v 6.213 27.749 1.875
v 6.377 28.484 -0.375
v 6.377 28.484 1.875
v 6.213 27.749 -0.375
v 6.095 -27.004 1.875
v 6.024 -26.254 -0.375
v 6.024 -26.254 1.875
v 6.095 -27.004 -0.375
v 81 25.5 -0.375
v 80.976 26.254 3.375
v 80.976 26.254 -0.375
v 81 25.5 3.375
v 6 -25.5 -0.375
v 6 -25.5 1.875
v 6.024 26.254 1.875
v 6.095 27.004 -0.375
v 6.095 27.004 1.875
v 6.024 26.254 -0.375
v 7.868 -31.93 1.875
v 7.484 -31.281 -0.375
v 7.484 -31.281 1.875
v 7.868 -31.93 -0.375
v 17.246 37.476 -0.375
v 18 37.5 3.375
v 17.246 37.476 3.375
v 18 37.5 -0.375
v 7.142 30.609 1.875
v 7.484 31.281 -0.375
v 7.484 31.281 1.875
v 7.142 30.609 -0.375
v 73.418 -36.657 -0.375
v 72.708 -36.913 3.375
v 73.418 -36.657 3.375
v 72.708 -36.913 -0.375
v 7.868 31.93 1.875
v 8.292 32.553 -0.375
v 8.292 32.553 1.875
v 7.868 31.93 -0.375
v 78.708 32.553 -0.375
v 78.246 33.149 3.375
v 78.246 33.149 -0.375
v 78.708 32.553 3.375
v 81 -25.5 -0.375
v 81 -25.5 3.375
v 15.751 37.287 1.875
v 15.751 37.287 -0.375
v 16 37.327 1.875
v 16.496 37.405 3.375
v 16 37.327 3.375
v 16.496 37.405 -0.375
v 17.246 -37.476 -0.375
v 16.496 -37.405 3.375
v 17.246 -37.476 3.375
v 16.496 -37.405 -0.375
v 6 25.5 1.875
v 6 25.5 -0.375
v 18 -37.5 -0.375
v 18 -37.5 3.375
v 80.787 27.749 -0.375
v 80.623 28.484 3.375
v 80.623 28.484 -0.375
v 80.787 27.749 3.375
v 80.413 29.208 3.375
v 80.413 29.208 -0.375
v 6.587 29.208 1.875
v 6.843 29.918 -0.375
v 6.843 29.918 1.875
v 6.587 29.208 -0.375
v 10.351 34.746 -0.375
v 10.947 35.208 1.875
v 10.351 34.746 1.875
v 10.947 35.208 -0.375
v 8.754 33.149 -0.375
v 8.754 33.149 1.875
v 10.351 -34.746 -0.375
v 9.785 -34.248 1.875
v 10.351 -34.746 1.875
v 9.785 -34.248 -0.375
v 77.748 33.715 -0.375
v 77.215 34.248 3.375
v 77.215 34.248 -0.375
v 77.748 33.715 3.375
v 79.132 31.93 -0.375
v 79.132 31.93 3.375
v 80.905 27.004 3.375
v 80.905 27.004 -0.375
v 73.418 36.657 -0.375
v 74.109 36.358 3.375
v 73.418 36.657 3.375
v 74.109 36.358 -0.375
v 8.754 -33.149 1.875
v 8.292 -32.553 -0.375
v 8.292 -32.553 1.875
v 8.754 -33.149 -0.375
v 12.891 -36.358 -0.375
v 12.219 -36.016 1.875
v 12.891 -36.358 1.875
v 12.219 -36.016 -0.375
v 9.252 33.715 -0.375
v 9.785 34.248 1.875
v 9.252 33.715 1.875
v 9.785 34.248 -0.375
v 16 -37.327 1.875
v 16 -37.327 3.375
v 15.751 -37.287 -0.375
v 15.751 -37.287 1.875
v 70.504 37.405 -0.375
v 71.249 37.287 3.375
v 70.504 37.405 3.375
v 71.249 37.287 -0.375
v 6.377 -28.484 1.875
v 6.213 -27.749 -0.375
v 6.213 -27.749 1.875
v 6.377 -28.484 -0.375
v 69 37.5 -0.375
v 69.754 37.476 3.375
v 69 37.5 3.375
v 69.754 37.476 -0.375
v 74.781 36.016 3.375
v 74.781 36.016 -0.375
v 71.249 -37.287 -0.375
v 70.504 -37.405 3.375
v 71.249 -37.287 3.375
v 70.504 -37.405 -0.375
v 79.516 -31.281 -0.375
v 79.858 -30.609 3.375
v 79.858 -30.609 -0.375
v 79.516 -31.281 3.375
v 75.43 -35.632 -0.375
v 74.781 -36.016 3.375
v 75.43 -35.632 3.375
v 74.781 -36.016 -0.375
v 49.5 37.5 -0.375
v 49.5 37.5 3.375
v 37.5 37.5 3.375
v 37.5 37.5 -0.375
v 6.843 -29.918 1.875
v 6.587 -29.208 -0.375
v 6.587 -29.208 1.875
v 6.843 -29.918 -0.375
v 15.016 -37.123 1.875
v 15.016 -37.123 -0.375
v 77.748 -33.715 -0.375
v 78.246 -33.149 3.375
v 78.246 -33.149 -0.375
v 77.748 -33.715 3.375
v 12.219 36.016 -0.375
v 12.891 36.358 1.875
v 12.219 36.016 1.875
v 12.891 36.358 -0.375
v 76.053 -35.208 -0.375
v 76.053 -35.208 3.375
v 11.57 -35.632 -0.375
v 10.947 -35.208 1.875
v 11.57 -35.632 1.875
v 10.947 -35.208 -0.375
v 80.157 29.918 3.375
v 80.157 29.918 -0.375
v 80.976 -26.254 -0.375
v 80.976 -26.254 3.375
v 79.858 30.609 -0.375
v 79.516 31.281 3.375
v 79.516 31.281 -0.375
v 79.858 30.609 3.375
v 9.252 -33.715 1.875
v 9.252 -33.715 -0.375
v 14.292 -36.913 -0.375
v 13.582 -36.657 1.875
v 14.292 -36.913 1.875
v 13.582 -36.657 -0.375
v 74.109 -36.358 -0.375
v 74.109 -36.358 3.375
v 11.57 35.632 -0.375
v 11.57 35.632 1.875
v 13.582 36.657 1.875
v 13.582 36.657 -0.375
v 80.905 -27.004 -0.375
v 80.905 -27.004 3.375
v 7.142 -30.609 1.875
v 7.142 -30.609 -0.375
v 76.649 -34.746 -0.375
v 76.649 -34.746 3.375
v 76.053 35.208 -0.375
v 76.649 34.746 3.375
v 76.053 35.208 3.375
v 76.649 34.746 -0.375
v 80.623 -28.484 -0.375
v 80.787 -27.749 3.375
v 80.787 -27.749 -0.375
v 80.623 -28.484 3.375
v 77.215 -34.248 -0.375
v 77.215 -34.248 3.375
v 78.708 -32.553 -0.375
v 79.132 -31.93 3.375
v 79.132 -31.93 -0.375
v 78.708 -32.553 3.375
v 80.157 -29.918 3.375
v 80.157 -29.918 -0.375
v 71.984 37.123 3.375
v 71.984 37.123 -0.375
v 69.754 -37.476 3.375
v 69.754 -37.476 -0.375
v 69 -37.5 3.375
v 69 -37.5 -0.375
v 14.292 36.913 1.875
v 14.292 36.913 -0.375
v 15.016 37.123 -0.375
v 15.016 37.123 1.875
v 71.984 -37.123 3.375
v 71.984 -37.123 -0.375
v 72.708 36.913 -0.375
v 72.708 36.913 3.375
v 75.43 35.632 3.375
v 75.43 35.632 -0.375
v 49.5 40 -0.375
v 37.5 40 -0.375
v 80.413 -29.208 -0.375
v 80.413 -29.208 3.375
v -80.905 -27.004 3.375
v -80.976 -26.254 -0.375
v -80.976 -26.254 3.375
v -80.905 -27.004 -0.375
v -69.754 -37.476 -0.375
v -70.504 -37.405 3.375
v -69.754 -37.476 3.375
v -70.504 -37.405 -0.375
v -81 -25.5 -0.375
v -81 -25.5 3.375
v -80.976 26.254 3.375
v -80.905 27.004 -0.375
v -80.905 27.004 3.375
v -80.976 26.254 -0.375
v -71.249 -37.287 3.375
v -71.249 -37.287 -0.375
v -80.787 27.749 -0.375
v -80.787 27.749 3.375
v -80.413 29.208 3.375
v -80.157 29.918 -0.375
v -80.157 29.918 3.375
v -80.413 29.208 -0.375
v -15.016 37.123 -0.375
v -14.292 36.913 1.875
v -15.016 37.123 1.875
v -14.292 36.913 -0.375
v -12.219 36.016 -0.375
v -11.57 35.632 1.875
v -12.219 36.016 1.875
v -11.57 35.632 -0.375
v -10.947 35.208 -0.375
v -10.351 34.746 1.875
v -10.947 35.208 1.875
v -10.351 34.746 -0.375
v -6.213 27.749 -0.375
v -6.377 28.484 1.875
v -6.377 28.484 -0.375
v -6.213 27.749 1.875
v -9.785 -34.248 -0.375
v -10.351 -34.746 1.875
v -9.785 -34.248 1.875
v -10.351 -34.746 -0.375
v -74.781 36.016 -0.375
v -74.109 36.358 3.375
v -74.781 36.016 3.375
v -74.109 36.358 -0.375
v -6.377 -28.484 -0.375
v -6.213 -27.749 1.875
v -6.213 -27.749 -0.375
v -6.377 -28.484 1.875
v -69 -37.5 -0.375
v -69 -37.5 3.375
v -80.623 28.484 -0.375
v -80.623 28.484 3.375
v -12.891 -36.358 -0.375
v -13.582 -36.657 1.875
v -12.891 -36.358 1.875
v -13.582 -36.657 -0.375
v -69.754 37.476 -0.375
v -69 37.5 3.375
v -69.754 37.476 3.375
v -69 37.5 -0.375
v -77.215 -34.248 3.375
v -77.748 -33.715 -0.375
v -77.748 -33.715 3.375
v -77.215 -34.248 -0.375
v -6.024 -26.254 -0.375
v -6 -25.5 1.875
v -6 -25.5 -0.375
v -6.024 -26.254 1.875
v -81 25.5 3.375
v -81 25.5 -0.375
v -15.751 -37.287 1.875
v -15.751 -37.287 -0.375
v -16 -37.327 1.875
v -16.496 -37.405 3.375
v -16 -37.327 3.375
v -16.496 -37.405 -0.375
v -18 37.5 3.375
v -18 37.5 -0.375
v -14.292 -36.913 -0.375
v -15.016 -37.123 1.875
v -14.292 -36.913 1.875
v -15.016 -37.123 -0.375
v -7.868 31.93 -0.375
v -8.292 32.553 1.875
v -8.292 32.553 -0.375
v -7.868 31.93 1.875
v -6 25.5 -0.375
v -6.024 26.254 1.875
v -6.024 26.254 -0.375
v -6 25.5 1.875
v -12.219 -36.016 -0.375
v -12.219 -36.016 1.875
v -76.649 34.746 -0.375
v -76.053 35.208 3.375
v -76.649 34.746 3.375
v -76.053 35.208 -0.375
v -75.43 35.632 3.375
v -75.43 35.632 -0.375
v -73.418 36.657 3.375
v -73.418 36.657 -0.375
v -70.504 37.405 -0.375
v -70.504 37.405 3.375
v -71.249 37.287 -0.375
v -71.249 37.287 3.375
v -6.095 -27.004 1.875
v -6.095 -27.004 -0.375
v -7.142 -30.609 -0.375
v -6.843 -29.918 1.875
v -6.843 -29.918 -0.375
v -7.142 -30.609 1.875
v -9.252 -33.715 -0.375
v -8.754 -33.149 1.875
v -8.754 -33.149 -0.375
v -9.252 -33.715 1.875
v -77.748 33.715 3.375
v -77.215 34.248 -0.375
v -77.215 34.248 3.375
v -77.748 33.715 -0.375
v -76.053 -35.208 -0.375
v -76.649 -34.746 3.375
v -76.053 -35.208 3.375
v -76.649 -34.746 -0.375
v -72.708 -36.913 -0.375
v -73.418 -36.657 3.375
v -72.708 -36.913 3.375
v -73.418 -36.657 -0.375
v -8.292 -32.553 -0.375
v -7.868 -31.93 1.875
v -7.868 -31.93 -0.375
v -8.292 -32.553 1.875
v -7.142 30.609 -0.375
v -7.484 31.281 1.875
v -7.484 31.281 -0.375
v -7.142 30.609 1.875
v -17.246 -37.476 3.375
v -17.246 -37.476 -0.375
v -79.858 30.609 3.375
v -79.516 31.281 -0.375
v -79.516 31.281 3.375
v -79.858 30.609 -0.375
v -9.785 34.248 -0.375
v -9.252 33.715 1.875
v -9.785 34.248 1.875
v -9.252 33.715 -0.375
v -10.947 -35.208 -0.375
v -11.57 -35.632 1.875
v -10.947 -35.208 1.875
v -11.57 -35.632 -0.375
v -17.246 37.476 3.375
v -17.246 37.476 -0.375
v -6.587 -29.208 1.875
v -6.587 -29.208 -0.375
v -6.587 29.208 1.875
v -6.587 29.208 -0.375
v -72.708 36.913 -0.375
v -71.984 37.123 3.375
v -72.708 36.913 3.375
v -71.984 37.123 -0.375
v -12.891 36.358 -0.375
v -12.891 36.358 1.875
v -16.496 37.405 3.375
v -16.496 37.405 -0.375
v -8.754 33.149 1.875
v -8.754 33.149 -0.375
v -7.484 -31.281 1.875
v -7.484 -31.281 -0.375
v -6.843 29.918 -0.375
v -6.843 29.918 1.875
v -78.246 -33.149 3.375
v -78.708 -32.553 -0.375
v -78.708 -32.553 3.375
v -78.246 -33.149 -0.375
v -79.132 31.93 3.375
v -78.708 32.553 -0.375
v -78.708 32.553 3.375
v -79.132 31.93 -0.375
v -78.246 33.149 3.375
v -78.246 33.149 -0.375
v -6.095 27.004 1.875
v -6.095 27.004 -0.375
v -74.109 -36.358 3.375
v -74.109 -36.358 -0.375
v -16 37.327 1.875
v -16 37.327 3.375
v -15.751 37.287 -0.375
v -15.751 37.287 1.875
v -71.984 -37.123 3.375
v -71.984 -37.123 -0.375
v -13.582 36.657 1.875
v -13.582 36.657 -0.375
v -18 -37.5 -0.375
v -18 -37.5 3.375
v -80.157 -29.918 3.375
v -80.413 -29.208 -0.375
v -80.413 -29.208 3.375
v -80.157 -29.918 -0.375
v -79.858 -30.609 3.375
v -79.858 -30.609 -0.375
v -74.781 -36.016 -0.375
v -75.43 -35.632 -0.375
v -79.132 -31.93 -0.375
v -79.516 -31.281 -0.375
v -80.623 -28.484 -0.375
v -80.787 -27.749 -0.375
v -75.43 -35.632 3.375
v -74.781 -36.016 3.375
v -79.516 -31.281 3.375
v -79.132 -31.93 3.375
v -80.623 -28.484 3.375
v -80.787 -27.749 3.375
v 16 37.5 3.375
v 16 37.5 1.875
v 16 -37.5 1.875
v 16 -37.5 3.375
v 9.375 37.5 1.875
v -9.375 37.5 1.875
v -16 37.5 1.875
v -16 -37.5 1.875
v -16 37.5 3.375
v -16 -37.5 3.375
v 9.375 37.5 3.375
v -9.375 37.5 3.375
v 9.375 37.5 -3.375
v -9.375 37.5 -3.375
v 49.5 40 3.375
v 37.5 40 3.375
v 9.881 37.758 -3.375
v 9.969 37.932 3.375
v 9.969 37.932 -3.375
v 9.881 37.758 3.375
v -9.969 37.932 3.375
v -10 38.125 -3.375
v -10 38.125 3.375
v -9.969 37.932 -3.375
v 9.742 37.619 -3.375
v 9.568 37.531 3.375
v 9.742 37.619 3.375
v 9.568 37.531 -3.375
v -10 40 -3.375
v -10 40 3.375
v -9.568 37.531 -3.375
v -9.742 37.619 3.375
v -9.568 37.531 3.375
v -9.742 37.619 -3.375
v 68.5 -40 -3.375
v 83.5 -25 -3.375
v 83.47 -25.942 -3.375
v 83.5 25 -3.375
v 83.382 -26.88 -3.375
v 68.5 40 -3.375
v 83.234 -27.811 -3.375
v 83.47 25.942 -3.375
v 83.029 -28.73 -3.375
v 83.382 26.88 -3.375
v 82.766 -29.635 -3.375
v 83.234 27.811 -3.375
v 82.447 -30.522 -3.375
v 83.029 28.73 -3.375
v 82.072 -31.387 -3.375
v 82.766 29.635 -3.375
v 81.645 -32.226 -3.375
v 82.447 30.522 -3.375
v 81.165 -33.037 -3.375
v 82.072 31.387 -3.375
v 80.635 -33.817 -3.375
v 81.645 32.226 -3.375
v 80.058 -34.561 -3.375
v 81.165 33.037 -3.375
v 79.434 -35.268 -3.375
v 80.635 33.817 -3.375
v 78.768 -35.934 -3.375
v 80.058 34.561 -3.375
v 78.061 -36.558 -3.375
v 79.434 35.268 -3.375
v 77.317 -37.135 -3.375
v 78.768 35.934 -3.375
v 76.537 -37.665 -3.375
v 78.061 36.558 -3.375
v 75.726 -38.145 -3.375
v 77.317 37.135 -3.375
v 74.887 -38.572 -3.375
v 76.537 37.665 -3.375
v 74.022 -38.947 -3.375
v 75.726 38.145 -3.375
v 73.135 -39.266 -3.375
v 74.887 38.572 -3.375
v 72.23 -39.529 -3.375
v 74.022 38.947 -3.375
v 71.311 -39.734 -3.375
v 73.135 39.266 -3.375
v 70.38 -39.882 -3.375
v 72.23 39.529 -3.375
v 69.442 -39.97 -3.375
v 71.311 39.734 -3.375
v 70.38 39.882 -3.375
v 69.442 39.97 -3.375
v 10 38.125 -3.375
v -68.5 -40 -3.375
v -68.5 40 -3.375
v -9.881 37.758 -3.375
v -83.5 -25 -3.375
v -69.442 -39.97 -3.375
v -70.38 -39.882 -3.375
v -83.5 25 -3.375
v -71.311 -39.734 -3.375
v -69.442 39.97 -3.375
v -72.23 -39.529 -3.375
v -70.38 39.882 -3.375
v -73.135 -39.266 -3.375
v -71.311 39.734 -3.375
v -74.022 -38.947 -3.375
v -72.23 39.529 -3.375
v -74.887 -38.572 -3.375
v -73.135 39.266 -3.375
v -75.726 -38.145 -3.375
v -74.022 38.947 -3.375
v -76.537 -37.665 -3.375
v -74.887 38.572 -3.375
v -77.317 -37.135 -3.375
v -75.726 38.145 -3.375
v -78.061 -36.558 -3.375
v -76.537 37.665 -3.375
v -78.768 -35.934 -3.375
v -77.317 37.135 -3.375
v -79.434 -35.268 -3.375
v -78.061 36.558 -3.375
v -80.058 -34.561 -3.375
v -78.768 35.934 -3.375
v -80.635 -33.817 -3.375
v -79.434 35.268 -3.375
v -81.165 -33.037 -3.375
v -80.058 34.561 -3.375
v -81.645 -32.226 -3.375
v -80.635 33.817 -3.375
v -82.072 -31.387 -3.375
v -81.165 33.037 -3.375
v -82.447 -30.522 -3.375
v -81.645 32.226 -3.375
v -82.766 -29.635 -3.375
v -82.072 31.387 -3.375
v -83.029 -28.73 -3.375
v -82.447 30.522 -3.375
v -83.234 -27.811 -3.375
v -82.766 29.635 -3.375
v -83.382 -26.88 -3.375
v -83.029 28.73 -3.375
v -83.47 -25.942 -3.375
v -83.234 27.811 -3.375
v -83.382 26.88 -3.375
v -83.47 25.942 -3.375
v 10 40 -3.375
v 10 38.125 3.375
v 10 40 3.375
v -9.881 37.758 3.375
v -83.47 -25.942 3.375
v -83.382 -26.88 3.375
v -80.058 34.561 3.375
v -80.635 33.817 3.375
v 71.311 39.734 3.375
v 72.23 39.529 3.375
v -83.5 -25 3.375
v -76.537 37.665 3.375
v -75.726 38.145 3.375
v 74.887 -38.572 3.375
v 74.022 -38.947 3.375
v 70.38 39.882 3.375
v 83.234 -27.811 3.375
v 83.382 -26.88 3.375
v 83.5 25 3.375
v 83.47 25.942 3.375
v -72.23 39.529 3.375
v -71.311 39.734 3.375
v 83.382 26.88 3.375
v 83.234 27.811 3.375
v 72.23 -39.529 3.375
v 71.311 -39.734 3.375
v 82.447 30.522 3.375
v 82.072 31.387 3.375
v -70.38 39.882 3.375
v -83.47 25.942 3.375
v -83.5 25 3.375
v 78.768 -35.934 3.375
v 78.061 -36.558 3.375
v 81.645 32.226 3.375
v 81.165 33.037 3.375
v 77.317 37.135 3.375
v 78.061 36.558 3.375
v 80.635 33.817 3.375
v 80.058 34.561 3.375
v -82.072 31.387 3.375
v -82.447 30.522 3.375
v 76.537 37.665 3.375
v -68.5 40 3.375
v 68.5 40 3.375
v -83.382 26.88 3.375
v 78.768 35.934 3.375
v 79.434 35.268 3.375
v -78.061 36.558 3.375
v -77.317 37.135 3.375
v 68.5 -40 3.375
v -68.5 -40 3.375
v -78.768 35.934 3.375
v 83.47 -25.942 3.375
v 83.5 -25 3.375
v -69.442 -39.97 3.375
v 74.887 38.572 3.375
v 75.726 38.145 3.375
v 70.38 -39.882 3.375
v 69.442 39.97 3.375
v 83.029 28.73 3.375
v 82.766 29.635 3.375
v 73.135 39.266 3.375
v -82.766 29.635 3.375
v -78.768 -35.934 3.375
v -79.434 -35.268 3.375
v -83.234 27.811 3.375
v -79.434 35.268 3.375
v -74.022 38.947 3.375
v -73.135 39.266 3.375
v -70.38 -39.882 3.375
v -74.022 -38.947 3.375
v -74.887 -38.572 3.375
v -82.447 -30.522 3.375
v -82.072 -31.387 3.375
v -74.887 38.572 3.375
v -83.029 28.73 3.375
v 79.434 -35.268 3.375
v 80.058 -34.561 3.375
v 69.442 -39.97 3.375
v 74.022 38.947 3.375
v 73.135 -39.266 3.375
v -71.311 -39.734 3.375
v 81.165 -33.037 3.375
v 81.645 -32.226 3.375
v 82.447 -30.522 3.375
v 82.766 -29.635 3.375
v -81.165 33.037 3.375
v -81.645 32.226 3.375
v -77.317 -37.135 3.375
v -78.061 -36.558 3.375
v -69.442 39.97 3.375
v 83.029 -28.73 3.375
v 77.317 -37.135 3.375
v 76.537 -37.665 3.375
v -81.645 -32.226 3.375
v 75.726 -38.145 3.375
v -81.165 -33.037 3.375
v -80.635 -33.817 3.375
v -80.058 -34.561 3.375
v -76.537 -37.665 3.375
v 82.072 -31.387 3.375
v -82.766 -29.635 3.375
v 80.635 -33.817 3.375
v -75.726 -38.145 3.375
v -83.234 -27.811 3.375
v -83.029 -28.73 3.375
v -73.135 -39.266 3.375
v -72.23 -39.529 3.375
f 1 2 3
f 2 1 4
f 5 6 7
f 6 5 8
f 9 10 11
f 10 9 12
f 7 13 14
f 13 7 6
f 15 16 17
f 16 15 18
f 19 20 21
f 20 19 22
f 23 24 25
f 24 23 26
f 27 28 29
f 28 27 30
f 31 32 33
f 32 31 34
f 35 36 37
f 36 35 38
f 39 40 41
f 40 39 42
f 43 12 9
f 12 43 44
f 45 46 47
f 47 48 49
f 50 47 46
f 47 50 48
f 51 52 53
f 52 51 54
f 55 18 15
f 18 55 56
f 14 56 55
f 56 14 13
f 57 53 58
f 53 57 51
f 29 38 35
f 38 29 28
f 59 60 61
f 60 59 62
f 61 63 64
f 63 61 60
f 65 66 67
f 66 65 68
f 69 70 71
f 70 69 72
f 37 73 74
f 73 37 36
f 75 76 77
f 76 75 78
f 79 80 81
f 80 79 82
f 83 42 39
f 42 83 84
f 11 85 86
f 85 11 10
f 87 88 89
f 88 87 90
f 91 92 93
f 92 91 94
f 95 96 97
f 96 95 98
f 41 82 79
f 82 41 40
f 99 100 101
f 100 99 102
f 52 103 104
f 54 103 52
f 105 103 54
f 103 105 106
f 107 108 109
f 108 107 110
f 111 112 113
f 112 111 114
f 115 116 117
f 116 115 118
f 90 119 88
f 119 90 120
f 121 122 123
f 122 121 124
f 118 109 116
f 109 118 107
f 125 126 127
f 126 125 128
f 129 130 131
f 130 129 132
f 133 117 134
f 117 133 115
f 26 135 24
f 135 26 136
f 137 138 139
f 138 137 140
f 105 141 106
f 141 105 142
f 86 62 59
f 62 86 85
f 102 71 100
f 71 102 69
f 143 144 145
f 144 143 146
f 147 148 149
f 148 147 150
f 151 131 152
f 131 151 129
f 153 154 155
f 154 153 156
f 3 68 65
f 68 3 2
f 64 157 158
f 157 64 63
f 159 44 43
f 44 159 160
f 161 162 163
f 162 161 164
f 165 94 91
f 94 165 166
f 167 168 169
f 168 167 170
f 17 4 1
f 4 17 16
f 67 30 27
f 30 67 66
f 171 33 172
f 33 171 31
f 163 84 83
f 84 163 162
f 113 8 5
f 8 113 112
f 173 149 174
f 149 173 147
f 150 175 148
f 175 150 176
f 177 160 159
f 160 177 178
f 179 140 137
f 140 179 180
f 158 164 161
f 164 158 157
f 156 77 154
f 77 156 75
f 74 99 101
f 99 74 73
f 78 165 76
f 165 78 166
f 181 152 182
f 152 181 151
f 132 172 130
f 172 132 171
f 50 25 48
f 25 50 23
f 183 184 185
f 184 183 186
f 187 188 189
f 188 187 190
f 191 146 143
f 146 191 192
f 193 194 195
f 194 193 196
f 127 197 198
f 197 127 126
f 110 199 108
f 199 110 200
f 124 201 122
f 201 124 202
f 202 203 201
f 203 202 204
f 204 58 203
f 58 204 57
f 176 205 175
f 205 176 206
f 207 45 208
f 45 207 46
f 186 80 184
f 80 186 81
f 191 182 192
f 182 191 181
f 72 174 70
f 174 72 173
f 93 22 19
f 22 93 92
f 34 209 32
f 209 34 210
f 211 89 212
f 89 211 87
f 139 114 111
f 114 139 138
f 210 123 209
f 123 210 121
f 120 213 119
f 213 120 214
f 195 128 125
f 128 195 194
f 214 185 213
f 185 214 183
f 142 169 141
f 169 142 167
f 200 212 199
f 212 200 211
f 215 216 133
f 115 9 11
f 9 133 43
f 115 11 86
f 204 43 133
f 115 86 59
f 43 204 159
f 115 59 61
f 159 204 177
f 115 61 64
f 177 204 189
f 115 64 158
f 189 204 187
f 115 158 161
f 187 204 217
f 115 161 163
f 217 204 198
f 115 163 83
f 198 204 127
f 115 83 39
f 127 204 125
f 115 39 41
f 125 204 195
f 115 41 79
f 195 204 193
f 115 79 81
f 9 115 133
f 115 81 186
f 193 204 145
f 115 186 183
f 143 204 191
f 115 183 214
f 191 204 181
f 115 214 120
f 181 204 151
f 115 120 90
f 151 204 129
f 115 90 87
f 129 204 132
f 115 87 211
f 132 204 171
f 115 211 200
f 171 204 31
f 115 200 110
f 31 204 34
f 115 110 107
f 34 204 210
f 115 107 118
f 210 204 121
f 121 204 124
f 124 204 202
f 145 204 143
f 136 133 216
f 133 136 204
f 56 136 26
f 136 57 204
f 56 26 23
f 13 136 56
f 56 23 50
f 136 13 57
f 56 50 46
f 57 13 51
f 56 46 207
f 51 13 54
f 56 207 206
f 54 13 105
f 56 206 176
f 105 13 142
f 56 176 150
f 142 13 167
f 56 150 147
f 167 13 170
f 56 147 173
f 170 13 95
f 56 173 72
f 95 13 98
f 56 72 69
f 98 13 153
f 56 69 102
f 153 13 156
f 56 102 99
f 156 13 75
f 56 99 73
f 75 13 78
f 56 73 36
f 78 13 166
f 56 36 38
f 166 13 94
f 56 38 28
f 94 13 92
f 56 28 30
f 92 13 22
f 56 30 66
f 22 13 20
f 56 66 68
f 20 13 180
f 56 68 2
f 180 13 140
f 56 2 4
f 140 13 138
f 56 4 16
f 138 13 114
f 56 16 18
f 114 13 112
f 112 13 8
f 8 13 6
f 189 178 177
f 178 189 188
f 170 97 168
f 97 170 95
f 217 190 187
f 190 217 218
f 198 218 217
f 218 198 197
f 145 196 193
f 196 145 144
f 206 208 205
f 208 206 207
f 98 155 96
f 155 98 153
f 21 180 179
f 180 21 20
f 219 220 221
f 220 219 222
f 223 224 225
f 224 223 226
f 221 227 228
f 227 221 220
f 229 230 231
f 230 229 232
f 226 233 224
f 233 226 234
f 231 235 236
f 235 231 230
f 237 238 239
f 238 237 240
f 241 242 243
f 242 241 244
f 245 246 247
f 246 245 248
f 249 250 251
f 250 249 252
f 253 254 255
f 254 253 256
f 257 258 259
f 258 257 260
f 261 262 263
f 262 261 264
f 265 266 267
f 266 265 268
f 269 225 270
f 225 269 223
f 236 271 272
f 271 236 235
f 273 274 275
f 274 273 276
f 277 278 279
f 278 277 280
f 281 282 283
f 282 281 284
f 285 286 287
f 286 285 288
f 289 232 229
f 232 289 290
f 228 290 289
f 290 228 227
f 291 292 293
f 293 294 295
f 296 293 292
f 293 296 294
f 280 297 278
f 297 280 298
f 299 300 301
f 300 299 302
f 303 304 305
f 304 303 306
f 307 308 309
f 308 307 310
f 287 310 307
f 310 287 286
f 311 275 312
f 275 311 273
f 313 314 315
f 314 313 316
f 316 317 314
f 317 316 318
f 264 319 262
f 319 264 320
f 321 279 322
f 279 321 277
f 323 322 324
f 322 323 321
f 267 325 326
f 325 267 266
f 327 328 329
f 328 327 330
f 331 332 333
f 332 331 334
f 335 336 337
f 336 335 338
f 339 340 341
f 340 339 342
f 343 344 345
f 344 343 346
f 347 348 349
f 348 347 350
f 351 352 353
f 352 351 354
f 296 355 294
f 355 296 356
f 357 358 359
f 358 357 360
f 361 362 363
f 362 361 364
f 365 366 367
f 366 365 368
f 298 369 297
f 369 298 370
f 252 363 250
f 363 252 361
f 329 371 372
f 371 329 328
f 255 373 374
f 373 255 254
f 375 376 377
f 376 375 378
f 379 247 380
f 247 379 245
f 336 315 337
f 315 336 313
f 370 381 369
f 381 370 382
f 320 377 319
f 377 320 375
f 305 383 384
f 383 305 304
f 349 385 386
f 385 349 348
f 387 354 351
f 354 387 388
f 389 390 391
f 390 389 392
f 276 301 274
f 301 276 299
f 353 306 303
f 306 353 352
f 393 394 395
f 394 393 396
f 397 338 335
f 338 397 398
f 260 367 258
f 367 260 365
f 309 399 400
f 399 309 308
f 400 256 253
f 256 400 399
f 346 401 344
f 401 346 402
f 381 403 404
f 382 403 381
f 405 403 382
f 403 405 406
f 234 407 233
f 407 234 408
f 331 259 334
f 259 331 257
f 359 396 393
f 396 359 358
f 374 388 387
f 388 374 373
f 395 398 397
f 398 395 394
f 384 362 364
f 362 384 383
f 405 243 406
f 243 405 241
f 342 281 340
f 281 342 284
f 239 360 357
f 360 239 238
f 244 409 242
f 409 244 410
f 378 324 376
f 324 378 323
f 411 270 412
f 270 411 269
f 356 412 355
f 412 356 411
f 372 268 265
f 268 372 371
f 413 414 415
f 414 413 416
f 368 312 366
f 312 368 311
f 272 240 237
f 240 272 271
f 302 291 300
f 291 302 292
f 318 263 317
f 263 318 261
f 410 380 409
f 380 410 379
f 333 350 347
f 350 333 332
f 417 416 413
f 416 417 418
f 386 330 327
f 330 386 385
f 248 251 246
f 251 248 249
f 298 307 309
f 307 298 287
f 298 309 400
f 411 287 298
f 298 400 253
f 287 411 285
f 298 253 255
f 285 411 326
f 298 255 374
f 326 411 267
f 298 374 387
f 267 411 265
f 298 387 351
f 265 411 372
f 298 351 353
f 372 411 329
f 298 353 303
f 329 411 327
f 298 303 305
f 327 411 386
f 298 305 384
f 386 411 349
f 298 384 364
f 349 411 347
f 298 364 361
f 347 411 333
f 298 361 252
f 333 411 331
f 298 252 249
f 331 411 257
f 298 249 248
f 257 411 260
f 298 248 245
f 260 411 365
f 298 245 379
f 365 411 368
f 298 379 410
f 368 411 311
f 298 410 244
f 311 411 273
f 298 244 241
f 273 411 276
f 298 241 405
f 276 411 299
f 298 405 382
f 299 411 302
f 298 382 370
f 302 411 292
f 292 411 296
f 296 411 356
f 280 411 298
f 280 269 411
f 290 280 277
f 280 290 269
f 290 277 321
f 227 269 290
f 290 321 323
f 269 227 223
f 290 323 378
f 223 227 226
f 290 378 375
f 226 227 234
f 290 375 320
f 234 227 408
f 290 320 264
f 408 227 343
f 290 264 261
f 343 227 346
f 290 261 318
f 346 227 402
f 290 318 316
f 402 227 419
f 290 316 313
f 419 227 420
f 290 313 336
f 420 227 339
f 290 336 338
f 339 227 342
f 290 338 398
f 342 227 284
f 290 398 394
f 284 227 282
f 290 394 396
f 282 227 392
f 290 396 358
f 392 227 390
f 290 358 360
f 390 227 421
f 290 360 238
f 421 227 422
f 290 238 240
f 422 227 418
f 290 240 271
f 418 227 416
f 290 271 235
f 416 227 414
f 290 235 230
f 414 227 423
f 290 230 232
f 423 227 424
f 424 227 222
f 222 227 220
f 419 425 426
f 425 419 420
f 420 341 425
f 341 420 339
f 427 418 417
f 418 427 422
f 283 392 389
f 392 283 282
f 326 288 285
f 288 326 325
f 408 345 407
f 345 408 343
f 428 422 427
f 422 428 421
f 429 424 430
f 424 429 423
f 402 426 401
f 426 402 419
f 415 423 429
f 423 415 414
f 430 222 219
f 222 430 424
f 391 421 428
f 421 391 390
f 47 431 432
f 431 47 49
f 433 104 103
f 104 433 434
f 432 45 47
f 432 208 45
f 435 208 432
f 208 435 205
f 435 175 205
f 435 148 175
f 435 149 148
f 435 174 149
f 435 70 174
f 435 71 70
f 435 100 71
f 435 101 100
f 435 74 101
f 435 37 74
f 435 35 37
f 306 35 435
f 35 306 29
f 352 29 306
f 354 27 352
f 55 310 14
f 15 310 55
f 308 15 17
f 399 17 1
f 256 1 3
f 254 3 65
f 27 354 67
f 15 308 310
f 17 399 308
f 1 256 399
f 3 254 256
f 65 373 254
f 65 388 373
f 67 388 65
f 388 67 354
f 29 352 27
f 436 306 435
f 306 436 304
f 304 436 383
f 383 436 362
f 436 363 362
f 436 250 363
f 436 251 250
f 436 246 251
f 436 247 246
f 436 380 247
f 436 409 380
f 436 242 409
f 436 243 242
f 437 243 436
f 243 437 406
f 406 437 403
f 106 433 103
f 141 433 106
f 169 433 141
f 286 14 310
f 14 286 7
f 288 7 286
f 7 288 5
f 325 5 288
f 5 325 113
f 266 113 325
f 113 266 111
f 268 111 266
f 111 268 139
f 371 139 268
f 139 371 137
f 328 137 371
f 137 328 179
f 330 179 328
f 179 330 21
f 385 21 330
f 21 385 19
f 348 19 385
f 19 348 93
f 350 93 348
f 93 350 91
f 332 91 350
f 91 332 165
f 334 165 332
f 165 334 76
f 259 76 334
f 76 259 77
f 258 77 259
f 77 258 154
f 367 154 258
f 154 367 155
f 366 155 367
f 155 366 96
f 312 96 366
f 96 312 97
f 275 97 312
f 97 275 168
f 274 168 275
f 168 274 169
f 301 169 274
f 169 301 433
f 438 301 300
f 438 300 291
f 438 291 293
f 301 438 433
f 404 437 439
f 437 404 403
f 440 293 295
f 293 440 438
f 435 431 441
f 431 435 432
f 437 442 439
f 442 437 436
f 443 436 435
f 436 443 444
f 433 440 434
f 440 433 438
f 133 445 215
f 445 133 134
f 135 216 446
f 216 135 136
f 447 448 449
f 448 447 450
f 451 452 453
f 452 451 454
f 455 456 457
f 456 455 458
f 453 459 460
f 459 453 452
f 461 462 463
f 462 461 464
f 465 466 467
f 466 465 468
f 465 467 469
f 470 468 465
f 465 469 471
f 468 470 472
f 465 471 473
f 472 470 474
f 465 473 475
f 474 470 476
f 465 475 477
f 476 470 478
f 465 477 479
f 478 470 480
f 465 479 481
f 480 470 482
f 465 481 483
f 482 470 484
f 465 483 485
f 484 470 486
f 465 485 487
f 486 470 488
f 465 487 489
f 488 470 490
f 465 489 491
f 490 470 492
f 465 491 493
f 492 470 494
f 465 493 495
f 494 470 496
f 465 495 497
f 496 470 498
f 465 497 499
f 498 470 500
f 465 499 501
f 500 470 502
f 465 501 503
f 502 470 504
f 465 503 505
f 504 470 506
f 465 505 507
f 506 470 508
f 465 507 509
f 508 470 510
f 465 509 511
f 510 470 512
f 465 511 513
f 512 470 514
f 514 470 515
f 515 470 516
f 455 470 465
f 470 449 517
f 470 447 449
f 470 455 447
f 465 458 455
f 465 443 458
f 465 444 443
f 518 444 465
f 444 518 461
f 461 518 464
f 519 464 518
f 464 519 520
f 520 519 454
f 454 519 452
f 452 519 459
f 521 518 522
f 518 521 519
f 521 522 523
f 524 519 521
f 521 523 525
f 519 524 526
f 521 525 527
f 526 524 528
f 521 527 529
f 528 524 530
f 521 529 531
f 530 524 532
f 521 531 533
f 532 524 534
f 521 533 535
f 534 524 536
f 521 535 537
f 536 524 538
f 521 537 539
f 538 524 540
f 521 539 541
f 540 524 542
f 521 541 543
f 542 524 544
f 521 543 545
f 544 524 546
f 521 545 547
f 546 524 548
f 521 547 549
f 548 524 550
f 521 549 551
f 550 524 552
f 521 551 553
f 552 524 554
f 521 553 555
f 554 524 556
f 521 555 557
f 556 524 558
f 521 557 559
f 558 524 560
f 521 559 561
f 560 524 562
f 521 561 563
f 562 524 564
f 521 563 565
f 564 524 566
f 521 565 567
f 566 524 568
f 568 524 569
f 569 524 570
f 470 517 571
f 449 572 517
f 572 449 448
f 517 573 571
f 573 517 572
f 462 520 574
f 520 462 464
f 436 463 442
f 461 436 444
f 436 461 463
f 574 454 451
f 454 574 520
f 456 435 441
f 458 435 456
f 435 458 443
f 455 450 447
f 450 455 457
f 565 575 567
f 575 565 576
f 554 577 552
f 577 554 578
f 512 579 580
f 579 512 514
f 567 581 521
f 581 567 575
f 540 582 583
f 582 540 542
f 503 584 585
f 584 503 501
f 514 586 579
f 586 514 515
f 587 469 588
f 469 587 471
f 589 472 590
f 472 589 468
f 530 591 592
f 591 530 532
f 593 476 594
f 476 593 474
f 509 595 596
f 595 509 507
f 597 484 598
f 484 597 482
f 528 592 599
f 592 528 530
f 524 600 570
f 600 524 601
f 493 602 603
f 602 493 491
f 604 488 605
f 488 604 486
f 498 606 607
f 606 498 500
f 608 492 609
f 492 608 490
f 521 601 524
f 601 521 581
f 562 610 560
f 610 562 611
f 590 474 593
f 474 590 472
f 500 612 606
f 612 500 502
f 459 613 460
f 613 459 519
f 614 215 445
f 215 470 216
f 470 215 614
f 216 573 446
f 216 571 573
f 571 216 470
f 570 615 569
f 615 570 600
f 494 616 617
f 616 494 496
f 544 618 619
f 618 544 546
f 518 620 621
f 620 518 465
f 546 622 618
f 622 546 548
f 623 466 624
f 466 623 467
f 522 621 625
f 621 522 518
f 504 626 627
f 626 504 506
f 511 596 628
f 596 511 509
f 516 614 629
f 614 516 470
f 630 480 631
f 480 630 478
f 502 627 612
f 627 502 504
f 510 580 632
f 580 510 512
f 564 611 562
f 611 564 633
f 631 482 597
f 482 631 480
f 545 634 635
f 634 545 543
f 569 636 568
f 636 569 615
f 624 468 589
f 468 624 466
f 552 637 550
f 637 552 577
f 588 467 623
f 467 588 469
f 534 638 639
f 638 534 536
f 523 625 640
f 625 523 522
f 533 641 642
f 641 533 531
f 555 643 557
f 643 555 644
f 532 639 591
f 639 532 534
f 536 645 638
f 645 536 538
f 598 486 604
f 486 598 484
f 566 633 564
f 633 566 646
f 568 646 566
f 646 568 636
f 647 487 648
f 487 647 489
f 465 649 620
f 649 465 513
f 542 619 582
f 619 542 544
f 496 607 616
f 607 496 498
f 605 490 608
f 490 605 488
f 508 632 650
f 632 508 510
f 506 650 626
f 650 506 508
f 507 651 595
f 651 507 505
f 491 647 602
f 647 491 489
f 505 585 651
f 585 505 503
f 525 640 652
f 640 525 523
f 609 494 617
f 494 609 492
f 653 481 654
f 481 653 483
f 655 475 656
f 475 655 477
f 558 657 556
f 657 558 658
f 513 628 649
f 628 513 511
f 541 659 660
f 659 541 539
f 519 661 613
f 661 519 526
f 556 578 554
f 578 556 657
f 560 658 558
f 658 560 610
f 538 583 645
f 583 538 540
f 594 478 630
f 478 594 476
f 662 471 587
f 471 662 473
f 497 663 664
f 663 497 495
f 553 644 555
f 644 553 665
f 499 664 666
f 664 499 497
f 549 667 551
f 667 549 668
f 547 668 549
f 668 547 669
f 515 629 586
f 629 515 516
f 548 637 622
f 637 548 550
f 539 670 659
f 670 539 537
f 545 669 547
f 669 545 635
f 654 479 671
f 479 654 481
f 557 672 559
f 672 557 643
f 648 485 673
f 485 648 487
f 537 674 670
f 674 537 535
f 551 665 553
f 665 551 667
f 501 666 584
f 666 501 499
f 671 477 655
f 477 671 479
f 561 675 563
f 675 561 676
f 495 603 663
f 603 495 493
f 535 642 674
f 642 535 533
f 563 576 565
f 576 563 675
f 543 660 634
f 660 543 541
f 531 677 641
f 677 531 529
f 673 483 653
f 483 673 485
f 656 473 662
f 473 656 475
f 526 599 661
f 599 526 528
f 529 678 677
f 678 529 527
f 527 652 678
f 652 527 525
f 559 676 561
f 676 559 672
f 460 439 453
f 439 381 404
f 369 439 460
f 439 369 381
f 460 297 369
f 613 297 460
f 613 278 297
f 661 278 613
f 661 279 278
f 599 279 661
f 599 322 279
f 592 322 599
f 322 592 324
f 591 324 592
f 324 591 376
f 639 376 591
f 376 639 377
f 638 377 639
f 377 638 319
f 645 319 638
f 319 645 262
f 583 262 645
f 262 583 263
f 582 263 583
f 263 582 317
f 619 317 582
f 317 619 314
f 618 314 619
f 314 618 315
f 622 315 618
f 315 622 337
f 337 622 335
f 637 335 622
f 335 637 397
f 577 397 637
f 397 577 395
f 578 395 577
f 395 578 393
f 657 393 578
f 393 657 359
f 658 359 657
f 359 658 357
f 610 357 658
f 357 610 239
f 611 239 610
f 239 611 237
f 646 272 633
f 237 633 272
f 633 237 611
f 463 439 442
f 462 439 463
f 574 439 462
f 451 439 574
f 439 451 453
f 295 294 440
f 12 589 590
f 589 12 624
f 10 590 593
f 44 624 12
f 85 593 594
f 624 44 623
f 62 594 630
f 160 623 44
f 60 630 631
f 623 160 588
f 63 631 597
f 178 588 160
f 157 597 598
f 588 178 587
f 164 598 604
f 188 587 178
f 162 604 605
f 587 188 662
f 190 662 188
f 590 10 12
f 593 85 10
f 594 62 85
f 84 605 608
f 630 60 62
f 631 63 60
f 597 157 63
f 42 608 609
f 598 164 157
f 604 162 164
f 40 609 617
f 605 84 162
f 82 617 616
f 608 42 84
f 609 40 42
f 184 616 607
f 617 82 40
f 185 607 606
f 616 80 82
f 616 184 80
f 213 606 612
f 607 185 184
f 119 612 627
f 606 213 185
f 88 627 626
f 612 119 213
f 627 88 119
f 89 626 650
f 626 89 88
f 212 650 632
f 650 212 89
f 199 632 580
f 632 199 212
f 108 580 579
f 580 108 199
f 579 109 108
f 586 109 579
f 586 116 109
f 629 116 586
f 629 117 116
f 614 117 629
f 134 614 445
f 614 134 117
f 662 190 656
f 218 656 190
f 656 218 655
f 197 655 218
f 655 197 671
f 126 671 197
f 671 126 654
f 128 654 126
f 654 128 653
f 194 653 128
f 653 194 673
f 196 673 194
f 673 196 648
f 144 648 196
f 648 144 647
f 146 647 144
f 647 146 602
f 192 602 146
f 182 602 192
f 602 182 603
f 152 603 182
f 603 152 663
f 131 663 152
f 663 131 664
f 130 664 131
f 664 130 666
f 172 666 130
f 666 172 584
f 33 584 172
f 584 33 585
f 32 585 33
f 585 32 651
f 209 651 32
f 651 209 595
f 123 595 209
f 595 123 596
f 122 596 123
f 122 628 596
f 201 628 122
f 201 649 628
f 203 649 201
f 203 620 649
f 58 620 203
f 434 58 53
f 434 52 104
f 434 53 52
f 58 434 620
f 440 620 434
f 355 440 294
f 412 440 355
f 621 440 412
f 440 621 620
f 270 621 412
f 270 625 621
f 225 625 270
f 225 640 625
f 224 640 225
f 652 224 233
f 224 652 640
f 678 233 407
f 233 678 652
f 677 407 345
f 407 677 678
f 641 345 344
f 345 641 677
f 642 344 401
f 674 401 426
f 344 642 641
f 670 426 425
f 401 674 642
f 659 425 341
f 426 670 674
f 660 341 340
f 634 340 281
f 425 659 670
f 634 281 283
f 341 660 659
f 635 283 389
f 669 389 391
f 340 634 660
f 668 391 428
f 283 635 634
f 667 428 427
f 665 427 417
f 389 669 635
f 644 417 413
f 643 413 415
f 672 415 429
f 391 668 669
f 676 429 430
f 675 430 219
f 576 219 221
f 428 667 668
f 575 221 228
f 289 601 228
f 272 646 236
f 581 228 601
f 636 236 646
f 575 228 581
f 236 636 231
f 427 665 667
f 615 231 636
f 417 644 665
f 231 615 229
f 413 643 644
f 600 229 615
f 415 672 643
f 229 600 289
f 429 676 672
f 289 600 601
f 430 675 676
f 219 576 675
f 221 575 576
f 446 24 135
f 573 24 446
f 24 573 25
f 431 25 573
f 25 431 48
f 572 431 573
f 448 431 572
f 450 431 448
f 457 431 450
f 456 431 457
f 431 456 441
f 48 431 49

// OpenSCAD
$fn = 100;
union()
{
  difference()
  {
    translate(v = [0, 0, -3.375])
    {
      linear_extrude(height = 6.75, center = false, convexity = undef, twist = undef, slices = undef, scale = 1, $fn = 20)
      {
        translate(v = [-83.5, -40])
        {
          hull()
          {
            translate(v = [15, 15])
            {
              circle(r = 15, $fn = 100);
            }
            translate(v = [152, 15])
            {
              circle(r = 15, $fn = 100);
            }
            translate(v = [152, 65])
            {
              circle(r = 15, $fn = 100);
            }
            translate(v = [15, 65])
            {
              circle(r = 15, $fn = 100);
            }
          }
        }
      }
    }
    translate(v = [0, 0, 3.375])
    {
      union()
      {
        translate(v = [43.5, 0, 0])
        {
          translate(v = [0, 0, -3.75])
          {
            linear_extrude(height = 7.5, center = false, convexity = undef, twist = undef, slices = undef, scale = 1, $fn = 20)
            {
              translate(v = [-37.5, -37.5])
              {
                hull()
                {
                  translate(v = [12, 12])
                  {
                    circle(r = 12, $fn = 100);
                  }
                  translate(v = [63, 12])
                  {
                    circle(r = 12, $fn = 100);
                  }
                  translate(v = [63, 63])
                  {
                    circle(r = 12, $fn = 100);
                  }
                  translate(v = [12, 63])
                  {
                    circle(r = 12, $fn = 100);
                  }
                }
              }
            }
          }
        }
        translate(v = [-43.5, 0, 0])
        {
          translate(v = [0, 0, -3.75])
          {
            linear_extrude(height = 7.5, center = false, convexity = undef, twist = undef, slices = undef, scale = 1, $fn = 20)
            {
              translate(v = [-37.5, -37.5])
              {
                hull()
                {
                  translate(v = [12, 12])
                  {
                    circle(r = 12, $fn = 100);
                  }
                  translate(v = [63, 12])
                  {
                    circle(r = 12, $fn = 100);
                  }
                  translate(v = [63, 63])
                  {
                    circle(r = 12, $fn = 100);
                  }
                  translate(v = [12, 63])
                  {
                    circle(r = 12, $fn = 100);
                  }
                }
              }
            }
          }
        }
        cube(size = [32, 75, 3], center = true);
        translate(v = [0, 37.5, 0])
        {
          translate(v = [43.5, 0, 0])
          {
            cube(size = [12, 5.03, 7.5], center = true);
          }
        }
      }
    }
    translate(v = [0, 42.5, 0])
    {
      translate(v = [0, 0, 26.625])
      {
        rotate(a = 180, v = [0, 0, 1])
        {
          union()
          {
            translate(v = [0, 0, -30])
            {
              union()
              {
                linear_extrude(height = 50, center = false, convexity = undef, twist = undef, slices = undef, scale = 1, $fn = 20)
                {
                  translate(v = [-10, -5])
                  {
                    hull()
                    {
                      translate(v = [0.625, 0.625])
                      {
                        circle(r = 0.625);
                      }
                      translate(v = [19.375, 0.625])
                      {
                        circle(r = 0.625);
                      }
                      translate(v = [19.375, 9.375])
                      {
                        circle(r = 0.625);
                      }
                      translate(v = [0.625, 9.375])
                      {
                        circle(r = 0.625);
                      }
                    }
                  }
                }
                translate(v = [0, 1.5, 0])
                {
                  translate(v = [0, 0, 50])
                  {
                    cube(size = [5, 13, 10], center = true);
                  }
                }
              }
            }
          }
        }
      }
    }
  }
}
